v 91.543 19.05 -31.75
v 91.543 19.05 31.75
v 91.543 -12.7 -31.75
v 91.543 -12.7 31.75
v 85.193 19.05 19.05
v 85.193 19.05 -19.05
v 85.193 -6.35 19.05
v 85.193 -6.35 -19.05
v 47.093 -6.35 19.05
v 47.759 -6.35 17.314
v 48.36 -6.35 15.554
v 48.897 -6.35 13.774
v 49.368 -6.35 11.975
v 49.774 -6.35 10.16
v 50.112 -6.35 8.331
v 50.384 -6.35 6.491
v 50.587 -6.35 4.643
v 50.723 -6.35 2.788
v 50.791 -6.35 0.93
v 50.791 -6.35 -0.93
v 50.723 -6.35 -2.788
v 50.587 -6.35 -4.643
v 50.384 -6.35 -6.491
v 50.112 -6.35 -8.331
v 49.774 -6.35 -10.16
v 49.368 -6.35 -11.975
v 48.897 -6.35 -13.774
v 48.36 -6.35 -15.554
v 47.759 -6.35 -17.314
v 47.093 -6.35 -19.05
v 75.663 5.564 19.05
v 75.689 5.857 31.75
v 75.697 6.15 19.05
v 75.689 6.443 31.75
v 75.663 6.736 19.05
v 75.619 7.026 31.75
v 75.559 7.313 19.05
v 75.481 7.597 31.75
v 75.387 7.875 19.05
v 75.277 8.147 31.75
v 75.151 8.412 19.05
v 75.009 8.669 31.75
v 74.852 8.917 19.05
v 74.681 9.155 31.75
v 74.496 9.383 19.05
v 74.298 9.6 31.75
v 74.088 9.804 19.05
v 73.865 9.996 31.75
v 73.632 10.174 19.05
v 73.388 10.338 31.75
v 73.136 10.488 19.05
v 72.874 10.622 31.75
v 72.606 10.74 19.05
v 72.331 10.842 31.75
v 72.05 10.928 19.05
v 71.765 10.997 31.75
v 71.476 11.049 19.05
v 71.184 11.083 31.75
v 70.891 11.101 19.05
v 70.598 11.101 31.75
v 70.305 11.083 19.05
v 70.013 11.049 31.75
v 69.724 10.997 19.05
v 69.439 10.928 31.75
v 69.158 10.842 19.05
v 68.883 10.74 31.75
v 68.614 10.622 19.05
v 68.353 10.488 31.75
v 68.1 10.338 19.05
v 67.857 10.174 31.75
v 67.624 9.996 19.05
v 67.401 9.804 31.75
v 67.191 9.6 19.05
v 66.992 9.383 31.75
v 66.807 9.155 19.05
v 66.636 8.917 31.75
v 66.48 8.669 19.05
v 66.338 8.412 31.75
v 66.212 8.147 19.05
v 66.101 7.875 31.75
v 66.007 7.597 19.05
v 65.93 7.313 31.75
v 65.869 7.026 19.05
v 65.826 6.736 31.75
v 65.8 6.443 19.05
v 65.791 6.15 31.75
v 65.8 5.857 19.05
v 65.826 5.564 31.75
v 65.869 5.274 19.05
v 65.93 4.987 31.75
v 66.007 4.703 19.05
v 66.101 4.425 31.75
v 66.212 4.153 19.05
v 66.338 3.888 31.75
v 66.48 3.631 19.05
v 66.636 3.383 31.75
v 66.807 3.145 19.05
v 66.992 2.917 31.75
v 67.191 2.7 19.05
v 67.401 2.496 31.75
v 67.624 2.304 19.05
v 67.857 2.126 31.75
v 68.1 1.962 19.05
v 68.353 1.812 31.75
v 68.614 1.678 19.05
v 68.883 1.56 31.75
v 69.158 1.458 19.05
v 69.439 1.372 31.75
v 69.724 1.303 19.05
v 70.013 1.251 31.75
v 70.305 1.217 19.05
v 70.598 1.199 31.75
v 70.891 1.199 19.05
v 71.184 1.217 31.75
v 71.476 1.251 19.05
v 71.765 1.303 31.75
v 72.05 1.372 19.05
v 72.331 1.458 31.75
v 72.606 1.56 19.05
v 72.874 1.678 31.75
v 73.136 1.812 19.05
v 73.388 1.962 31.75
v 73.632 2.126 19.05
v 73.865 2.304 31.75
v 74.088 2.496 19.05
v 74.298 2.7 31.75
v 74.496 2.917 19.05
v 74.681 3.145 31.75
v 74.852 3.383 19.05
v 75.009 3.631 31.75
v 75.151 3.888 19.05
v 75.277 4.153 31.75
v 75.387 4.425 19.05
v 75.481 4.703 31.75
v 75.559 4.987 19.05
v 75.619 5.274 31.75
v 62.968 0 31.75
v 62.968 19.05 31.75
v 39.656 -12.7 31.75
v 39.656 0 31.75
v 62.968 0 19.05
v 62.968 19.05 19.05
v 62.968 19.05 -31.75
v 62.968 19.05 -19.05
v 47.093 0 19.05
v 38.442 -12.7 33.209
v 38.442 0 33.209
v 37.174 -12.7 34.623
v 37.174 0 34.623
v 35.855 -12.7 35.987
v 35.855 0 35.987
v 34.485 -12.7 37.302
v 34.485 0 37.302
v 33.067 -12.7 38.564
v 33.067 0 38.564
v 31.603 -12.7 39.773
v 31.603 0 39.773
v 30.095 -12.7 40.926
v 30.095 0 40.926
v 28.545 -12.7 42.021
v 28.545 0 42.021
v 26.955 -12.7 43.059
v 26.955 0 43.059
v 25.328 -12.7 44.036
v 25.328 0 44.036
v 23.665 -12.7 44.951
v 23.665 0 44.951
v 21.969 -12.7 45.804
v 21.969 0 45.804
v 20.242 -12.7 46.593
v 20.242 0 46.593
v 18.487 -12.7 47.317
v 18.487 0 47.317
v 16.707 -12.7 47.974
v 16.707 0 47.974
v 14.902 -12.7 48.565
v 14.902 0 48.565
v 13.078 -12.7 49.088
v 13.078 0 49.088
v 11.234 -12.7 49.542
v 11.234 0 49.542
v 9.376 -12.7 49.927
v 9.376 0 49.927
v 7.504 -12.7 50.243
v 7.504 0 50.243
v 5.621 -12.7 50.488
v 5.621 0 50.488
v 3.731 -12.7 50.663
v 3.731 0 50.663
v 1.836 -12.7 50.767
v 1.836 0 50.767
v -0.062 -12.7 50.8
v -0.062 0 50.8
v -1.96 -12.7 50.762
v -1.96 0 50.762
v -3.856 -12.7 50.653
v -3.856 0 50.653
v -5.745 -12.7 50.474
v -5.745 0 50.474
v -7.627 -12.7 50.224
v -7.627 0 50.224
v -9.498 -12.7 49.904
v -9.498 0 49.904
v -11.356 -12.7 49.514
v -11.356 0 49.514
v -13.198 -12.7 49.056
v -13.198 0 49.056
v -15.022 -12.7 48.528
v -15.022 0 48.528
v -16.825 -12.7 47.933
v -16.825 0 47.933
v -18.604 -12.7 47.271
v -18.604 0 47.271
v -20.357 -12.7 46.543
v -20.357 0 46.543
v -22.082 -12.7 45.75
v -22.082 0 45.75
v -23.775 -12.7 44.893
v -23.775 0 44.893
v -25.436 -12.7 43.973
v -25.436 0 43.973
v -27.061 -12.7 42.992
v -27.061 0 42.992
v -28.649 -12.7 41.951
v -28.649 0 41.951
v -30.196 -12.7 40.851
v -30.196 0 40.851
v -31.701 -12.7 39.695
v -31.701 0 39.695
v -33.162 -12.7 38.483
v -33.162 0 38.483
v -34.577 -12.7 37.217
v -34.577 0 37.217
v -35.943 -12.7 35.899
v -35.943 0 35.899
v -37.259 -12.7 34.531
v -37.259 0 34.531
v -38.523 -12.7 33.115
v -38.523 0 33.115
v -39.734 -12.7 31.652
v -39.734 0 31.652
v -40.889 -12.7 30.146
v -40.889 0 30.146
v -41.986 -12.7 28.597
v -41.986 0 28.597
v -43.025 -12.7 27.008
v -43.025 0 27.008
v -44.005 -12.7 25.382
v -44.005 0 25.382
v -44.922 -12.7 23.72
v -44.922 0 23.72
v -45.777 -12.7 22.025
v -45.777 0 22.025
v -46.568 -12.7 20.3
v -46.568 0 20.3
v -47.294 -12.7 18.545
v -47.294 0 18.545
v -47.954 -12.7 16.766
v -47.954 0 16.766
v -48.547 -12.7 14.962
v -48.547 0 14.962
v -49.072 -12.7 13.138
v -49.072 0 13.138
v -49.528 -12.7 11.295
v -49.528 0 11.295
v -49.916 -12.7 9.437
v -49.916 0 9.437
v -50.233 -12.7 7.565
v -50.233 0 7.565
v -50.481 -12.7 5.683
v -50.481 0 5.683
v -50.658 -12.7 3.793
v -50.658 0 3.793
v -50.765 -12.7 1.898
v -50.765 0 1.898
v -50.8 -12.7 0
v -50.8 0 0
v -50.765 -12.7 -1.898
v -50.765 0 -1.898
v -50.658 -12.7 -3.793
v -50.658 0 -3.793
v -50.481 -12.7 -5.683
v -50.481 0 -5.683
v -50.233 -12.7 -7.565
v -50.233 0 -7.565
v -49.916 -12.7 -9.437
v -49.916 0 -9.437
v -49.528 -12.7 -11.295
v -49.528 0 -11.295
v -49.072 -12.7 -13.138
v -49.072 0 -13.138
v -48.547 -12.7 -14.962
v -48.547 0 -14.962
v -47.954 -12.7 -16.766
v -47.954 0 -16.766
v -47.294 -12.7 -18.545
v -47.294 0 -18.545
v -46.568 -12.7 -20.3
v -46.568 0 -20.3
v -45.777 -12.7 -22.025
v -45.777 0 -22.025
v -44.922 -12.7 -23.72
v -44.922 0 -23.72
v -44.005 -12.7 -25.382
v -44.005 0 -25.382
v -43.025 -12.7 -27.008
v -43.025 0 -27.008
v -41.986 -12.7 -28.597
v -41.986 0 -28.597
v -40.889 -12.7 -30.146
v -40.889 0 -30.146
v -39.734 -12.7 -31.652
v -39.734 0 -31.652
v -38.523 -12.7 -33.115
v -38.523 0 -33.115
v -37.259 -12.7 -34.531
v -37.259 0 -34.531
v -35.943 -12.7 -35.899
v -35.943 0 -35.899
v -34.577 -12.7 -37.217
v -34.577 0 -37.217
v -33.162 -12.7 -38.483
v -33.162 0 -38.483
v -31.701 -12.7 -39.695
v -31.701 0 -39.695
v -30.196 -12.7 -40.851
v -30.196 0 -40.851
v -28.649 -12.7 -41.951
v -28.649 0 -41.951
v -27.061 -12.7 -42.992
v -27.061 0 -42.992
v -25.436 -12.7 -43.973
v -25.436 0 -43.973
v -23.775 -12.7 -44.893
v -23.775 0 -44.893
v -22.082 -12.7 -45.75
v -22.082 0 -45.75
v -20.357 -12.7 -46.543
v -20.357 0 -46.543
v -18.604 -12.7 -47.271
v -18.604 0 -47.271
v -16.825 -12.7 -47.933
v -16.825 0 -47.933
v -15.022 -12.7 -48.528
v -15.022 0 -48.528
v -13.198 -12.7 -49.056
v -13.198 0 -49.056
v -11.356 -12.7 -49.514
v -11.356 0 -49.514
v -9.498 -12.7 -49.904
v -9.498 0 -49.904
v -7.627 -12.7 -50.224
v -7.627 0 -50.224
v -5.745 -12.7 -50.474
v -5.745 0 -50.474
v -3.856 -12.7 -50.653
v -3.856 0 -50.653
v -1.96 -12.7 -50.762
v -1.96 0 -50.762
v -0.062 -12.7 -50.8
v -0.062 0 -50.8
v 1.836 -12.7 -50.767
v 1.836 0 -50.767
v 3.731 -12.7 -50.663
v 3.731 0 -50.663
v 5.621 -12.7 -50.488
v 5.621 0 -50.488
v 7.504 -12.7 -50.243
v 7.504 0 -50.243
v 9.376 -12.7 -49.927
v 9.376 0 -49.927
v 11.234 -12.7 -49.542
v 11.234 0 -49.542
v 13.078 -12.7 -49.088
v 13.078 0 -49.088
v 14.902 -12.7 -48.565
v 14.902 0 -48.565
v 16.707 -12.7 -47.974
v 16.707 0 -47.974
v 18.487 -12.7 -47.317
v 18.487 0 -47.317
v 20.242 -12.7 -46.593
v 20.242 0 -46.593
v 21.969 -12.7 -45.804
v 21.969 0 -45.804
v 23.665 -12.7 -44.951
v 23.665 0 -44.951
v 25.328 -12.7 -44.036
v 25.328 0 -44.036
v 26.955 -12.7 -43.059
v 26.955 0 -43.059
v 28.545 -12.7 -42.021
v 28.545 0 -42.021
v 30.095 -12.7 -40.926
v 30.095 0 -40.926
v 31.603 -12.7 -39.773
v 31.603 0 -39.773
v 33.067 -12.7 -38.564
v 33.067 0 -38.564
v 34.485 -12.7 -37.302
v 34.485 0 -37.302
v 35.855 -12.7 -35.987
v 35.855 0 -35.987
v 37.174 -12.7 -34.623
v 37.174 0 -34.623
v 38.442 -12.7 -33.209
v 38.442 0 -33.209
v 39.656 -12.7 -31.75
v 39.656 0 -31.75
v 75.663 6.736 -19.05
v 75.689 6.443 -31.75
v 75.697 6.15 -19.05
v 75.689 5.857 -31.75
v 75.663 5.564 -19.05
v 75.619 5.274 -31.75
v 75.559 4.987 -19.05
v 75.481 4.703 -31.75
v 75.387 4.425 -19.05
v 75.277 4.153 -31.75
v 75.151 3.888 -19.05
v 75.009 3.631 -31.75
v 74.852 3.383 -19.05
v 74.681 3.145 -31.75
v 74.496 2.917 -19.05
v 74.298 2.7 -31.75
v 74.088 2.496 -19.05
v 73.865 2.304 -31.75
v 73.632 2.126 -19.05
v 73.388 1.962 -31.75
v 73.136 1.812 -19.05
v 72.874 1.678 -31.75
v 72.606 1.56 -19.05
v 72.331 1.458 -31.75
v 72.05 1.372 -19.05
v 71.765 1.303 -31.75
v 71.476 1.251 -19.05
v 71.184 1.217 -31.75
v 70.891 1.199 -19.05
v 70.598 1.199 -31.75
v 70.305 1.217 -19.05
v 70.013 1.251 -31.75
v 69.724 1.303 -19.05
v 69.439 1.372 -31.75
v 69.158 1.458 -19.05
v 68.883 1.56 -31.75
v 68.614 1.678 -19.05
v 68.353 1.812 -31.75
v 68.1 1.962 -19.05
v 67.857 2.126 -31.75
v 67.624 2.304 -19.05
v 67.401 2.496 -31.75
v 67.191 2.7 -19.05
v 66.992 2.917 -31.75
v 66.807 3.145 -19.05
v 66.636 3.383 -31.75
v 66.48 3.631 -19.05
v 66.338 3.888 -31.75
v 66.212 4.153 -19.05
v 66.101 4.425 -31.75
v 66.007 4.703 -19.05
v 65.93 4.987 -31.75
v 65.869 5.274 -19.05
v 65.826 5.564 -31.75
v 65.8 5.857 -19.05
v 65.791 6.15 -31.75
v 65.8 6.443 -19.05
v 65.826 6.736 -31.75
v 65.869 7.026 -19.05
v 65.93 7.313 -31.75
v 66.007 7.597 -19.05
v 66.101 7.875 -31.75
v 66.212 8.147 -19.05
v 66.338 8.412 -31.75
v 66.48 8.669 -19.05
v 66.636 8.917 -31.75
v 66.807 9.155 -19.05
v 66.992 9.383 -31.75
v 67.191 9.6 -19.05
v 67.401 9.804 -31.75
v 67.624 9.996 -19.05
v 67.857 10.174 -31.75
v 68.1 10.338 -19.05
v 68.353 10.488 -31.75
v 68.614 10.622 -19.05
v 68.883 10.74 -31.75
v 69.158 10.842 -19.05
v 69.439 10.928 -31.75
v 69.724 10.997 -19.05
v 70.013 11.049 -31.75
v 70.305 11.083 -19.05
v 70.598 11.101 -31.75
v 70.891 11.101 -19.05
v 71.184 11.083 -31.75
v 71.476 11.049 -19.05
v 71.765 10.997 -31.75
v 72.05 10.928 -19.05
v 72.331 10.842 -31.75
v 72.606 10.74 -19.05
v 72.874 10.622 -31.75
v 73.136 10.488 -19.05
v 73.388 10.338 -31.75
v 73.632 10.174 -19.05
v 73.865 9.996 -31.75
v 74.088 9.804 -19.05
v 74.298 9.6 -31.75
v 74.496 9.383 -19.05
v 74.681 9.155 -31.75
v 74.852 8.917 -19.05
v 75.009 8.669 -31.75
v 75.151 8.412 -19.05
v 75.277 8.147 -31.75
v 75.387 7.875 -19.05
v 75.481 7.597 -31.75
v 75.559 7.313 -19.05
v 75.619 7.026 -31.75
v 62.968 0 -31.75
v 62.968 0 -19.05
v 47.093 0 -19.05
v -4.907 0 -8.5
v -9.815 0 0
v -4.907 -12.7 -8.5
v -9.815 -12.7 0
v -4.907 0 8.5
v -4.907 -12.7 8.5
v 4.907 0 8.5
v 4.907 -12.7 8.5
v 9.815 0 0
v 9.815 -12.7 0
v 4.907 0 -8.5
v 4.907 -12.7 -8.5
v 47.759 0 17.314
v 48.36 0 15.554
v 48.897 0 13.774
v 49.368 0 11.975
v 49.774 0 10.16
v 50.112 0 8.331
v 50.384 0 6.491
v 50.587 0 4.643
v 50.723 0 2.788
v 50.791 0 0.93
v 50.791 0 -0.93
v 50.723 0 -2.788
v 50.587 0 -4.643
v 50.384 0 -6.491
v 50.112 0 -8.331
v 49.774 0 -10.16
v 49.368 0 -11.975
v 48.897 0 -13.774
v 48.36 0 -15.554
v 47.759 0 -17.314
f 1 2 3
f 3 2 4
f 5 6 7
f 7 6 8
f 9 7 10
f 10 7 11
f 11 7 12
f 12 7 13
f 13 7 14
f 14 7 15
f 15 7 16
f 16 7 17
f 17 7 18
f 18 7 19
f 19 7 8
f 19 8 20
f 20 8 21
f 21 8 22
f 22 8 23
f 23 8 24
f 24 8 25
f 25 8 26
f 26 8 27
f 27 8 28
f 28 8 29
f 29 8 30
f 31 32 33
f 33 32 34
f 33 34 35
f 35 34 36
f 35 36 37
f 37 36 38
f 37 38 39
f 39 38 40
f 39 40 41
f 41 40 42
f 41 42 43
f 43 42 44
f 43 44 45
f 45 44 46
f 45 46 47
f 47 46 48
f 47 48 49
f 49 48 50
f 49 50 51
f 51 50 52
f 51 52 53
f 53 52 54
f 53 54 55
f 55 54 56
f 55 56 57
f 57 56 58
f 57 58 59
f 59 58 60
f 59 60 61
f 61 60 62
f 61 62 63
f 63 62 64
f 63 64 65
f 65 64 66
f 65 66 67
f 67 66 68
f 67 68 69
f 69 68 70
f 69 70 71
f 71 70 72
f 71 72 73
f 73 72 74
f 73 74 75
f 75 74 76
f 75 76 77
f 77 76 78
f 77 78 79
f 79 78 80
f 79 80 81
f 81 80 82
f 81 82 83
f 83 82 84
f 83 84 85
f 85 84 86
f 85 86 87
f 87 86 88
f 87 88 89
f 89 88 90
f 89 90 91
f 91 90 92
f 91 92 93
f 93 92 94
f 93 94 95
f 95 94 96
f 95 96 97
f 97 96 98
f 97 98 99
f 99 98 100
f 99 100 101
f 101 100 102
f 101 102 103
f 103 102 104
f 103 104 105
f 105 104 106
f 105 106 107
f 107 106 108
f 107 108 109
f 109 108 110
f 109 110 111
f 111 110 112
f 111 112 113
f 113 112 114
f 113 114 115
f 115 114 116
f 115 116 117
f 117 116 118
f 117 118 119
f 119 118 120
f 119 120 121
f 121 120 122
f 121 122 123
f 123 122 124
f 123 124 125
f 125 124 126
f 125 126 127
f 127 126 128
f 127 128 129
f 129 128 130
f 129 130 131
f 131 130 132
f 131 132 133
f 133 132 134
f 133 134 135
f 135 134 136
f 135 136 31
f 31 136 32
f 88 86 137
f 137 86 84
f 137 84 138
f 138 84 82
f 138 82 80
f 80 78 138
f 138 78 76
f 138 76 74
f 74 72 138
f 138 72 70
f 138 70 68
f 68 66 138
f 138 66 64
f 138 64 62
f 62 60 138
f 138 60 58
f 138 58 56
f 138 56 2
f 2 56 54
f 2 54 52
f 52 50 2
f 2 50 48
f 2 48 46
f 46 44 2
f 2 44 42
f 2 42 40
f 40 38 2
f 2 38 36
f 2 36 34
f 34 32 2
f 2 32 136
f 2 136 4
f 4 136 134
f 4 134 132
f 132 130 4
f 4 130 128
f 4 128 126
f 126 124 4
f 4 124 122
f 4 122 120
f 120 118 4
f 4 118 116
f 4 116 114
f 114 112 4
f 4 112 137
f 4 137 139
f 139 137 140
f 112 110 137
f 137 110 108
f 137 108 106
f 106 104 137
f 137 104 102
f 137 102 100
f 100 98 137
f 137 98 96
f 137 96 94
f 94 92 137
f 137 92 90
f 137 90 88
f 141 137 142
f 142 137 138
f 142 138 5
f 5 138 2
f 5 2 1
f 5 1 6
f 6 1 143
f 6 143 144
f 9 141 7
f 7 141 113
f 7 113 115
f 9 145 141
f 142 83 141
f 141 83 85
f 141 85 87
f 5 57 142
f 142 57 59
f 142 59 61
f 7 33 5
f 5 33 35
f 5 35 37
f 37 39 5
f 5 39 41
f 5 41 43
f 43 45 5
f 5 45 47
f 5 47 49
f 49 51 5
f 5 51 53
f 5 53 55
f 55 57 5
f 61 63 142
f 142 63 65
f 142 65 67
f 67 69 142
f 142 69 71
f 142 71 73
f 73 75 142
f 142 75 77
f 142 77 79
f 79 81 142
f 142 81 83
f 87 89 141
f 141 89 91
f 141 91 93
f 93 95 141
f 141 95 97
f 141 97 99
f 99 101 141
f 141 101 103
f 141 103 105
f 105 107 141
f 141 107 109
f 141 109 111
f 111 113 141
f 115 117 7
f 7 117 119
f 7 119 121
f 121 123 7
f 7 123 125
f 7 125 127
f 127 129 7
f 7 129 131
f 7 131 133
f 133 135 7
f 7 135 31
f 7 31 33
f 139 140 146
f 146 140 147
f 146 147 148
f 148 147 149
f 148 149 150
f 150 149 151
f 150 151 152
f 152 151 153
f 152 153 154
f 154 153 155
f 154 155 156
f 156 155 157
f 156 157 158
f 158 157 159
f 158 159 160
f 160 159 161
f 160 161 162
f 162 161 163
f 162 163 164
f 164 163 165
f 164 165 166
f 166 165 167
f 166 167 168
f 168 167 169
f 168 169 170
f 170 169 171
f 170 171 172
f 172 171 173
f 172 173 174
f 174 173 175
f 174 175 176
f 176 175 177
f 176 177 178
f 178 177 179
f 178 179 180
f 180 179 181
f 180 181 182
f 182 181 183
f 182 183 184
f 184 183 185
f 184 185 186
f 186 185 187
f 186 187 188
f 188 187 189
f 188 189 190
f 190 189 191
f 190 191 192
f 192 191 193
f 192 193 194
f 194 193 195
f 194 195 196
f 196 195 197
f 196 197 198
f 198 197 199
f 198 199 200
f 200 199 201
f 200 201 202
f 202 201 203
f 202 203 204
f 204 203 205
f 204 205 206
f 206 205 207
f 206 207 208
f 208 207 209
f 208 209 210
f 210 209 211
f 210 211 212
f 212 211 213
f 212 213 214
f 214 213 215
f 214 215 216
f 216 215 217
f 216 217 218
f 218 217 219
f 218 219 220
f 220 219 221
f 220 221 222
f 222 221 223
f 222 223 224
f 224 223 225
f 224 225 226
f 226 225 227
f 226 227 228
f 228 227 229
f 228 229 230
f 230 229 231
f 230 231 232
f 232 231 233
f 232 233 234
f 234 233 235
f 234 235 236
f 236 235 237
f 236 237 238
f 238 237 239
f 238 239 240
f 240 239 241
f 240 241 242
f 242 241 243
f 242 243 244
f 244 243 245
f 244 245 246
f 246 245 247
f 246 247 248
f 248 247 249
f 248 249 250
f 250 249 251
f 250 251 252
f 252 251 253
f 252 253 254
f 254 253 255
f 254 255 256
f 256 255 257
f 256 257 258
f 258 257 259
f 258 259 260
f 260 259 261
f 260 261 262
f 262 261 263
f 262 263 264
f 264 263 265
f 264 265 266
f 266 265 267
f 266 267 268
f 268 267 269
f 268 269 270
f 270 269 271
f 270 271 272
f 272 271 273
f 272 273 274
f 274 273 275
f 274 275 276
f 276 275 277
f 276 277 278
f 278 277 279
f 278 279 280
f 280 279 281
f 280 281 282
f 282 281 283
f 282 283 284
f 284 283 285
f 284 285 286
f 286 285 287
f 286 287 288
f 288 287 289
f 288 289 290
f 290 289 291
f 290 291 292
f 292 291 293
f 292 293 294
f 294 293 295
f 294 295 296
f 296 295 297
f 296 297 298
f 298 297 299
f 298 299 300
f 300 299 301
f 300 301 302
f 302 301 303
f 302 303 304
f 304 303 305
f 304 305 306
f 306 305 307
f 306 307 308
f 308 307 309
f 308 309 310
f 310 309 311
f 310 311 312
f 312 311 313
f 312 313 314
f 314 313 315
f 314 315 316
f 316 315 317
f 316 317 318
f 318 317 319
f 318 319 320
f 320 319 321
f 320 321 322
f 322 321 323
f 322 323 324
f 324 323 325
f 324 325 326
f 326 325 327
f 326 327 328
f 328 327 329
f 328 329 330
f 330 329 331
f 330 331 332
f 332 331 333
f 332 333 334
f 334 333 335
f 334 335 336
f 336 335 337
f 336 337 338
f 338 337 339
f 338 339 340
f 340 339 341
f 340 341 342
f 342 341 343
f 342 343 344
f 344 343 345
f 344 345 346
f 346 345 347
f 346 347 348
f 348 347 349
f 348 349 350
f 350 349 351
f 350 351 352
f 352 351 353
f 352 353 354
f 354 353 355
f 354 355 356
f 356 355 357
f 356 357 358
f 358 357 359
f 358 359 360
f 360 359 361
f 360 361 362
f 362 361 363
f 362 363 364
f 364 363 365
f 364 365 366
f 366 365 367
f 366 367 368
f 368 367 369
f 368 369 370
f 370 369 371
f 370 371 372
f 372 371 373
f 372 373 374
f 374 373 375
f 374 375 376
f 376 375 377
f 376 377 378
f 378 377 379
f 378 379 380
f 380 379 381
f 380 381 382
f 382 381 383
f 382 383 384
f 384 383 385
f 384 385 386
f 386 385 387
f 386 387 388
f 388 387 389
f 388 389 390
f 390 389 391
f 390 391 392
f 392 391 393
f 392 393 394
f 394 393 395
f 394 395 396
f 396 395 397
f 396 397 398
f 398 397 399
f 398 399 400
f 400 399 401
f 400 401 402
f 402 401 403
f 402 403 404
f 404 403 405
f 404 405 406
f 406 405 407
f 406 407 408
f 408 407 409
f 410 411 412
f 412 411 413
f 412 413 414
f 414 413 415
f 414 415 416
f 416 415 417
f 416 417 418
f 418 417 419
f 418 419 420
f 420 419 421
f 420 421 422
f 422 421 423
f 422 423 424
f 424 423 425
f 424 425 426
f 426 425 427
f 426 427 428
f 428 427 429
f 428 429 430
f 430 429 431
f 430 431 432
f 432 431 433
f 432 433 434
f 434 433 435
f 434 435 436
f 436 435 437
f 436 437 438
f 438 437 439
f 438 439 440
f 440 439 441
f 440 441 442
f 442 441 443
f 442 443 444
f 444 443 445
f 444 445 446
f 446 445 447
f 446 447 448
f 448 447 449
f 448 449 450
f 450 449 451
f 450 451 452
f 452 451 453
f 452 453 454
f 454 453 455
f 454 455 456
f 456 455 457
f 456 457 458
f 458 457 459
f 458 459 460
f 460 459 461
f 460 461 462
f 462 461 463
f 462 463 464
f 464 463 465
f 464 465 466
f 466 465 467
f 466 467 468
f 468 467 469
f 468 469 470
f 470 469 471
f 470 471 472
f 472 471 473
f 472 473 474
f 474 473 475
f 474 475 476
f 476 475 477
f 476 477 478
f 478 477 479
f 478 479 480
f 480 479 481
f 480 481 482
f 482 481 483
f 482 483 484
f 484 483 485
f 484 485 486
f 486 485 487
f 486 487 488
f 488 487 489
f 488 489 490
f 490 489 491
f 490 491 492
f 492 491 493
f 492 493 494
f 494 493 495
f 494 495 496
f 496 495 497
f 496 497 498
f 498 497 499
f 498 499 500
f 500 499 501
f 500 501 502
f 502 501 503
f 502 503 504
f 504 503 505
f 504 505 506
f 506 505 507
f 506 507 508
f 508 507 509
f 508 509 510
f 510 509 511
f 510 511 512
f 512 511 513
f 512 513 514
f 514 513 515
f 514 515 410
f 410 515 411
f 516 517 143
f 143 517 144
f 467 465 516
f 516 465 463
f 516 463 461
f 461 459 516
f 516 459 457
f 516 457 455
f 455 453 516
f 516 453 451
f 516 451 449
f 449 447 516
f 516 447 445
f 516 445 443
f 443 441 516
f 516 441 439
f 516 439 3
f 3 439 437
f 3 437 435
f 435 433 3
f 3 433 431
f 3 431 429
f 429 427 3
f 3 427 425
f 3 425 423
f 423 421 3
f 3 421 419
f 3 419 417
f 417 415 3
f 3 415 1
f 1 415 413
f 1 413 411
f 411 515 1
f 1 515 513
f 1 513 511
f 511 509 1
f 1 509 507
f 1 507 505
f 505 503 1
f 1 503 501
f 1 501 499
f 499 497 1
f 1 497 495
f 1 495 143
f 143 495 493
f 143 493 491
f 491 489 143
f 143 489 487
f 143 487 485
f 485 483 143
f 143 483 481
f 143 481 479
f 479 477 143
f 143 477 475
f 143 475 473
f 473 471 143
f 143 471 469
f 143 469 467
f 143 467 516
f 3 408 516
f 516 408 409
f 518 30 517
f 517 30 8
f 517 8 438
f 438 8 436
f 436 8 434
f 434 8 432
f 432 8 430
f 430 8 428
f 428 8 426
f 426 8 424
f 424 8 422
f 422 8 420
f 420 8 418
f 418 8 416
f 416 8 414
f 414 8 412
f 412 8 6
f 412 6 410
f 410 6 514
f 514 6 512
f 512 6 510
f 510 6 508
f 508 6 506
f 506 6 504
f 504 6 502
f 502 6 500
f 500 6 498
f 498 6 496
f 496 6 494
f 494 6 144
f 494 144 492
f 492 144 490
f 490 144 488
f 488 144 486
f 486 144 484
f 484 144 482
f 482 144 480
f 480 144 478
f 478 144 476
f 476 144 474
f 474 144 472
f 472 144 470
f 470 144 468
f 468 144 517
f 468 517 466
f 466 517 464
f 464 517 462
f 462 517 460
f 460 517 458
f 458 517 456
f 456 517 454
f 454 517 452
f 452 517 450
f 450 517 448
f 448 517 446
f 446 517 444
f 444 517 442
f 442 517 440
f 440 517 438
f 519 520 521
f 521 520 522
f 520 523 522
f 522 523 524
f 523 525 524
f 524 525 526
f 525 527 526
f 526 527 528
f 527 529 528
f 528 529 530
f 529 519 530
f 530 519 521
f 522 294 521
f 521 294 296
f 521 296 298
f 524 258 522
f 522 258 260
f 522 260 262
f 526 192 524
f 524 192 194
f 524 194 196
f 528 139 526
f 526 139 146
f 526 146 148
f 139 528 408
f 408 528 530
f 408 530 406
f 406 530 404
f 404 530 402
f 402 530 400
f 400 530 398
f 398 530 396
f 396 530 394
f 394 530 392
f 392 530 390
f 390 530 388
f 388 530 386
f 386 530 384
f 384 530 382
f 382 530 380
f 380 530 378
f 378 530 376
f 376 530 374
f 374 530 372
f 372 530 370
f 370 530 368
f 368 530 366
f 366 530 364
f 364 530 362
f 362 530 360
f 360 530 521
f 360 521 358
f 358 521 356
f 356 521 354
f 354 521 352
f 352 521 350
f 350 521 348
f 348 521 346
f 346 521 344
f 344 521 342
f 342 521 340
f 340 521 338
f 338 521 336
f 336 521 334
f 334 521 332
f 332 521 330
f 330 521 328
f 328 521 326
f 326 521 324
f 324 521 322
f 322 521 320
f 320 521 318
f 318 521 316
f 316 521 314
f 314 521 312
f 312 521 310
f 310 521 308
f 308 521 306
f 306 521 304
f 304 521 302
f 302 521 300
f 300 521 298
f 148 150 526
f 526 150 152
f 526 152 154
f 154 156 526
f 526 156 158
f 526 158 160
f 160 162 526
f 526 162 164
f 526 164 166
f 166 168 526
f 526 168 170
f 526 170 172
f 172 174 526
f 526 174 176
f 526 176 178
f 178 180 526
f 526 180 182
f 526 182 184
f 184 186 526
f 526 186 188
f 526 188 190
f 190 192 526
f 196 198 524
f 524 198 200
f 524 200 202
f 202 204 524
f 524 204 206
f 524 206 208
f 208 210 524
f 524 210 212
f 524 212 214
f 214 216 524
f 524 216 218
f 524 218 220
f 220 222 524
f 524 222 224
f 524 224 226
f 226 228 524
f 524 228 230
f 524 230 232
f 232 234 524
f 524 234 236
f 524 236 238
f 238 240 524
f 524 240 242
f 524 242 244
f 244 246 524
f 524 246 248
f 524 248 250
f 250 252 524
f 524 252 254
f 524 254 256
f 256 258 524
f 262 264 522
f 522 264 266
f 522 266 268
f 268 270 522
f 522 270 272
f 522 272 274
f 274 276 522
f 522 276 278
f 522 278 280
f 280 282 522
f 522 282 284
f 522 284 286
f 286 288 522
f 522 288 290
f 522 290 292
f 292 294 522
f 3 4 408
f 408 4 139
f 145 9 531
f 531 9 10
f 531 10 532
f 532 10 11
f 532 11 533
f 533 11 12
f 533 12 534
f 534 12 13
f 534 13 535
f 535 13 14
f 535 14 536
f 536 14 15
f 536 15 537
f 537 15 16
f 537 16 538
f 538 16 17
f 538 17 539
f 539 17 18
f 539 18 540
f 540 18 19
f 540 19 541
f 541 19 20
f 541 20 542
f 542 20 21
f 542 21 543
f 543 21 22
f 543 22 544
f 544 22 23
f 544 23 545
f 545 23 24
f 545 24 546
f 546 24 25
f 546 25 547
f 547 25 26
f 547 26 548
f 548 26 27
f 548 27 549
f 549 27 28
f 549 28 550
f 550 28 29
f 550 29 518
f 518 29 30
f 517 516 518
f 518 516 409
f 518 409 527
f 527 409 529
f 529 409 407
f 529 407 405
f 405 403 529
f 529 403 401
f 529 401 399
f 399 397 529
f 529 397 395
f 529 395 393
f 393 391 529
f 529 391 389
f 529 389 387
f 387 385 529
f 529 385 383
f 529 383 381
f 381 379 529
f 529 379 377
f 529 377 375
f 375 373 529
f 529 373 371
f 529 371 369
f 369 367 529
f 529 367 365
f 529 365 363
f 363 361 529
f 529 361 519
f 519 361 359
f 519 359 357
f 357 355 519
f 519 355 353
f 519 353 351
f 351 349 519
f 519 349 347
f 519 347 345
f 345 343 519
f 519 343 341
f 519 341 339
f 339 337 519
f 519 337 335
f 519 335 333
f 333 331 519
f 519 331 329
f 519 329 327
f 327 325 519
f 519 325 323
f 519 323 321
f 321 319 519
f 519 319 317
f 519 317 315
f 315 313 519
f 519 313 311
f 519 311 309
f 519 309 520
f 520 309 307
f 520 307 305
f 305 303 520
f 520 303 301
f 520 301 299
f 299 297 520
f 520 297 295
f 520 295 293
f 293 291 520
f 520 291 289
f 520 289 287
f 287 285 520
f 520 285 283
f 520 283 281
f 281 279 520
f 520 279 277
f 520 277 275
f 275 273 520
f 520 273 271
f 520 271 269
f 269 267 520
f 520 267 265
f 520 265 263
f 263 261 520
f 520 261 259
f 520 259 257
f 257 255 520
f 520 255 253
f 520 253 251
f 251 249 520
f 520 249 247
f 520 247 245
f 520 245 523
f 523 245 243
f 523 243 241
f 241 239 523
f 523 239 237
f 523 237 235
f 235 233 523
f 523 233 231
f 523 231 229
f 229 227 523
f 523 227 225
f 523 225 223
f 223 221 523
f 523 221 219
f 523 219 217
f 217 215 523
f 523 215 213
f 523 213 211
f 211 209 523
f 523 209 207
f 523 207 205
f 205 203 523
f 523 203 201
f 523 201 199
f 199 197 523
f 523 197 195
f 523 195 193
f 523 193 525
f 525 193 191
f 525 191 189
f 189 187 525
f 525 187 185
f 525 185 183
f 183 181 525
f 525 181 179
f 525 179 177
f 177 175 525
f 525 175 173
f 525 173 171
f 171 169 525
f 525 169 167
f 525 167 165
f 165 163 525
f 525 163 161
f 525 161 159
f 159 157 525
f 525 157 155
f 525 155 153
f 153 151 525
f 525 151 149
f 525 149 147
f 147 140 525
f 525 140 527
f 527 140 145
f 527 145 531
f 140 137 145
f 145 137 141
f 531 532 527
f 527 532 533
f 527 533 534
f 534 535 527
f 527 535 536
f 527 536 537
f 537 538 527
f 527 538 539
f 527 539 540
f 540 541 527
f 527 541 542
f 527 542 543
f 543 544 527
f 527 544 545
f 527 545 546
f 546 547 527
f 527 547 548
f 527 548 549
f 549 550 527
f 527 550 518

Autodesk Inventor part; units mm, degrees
ref_plane "YZ Plane" through (0, 0, 0) normal (1, 0, 0) x (0, 1, 0)
ref_plane "XZ Plane" through (0, 0, 0) normal (0, 1, 0) x (-1, 0, 0)
ref_plane "XY Plane" through (0, 0, 0) normal (0, 0, 1) x (1, 0, 0)
sketch "Sketch1" plane through (0, 0, 0) normal (0, 0, 1) x (1, 0, 0)
  line L0 (0, 0) -> (-50.8, 0)
  line L1 (-50.8, 0) -> (-50.8, -12.7)
  line L2 (-50.8, -12.7) -> (-38.1, -12.7)
  line L3 (-12.0663, -25.4) -> (-12.0663, -48.26)
  line L4 (-5, -48.26) -> (-5, -16.764)
  line L5 (-5, -16.764) -> (0, -16.764)
  line L6 (0, -16.764) -> (0, 0)
  line L7 (-12.0663, -48.26) -> (-5, -48.26)
  line L8 (-38.1, -12.7) -> (-38.1, -25.4)
  line L9 (-38.1, -25.4) -> (-12.0663, -25.4)
  dimension "d0" = 50.8
  dimension "d1" = 5
  dimension "d2" = 12.0663
  dimension "d13" = 35.56
  dimension "d15" = 31.496
  dimension "d38" = 12.7
  dimension "d39" = 38.1
revolve "Revolution1" add sketch "Sketch1" angle 360 about axis through (0, -16.764, 0) along (0, 1, 0)
sketch "Sketch5" plane through (0, 0, 0) normal (0, 1, 0) x (1, 0, 0)
  circle A0 centre (0, 0) radius 5 projected
  line L0 (9.815, 0) -> (4.9075, -8.5)
  line L1 (4.9075, -8.5) -> (-4.9075, -8.5)
  line L2 (-4.9075, -8.5) -> (-9.815, 0)
  line L3 (-9.815, 0) -> (-4.9075, 8.5)
  line L4 (-4.9075, 8.5) -> (4.9075, 8.5)
  line L5 (4.9075, 8.5) -> (9.815, 0)
  point P0 (0, 0)
  point P1 (0, 0)
  dimension "d16" = 17
extrude "Extrusion1" cut sketch "Sketch5" against normal blind 12.7 contours A0 | L0 L1 L2 L3 L4 L5
sketch "Sketch7" plane through (0, -12.7, 0) normal (0, -1, 0) x (1, 0, 0)
  circle A0 centre (0, 0) radius 50.8 projected
  line L0 (47.0929, -19.05) -> (85.1929, -19.05)
  line L1 (85.1929, -19.05) -> (85.1929, -31.75)
  line L2 (85.1929, -31.75) -> (39.6557, -31.75)
  circle A1 centre (0, 0) radius 5 construction
  line L3 (0, 0) -> (5, 0) construction
  line L4 (50.8, 0) -> (83.823, 0) construction
  dimension "d23" = 38.1
  dimension "d24" = 12.7
  dimension "d25" = 19.05
extrude "Extrusion3" add sketch "Sketch7" against normal blind 12.7 contours A0 L0 L1 L2
sketch "Sketch8" plane through (39.6557, 0, -31.75) normal (0, 1, 0) x (1, 0, 0)
  line L0 (45.5371, -12.7) -> (45.5371, 0) projected
  line L1 (45.5371, 0) -> (0, 0) projected
  line L2 (7.4371, -12.7) -> (45.5371, -12.7) projected
  line L3 (35.8511, -107.95) -> (35.8511, 44.45)
  line L4 (26.3261, -107.95) -> (26.3261, 44.45)
  line L5 (45.5371, -12.7) -> (23.3121, -12.7)
  line L6 (23.3121, -12.7) -> (23.3121, 0)
  line L7 (23.3121, 0) -> (45.5371, 0)
  line L8 (45.5371, 0) -> (45.5371, -12.7)
  point P0 (-39.6557, -31.75)
  point P1 (23.3121, 0)
  point P2 (23.3121, -12.7)
  dimension "d28" = 22.225
extrude "Extrusion4" add sketch "Sketch8" along normal blind 19.05
sketch "Sketch9" plane through (85.1929, -12.7, -31.75) normal (0, 0, -1) x (-1, 0, 0)
  line L0 (22.225, 12.7) -> (22.225, 31.75) projected
  line L1 (0, 31.75) -> (22.225, 31.75) projected
  arc A0 (16.0423, 14.3621) -> (12.8546, 14.3621) centre (14.4485, 18.85) ccw projected
  line L2 (0, 0) -> (0, 31.75) projected
  circle A1 centre (14.4485, 18.85) radius 4.953
  point P0 (85.1929, 12.7)
  dimension "d31" = 9.906
extrude "Extrusion5" cut sketch "Sketch9" against normal through all
mirror "Mirror1" about plane through (0, 0, 0) normal (0, 0, 1) of "Extrusion4", "Extrusion5", "Extrusion3"
sketch "Sketch10" plane through (39.6557, -12.7, -31.75) normal (0, -1, 0) x (1, 0, 0)
  arc A0 (7.4371, 12.7) -> (7.4371, 50.8) centre (-39.6557, 31.75) ccw projected
  line L0 (45.5371, 50.8) -> (7.4371, 50.8) projected
  line L1 (45.5371, 12.7) -> (7.4371, 12.7) projected
  arc A1 (7.4371, 12.7) -> (7.4371, 50.8) centre (-39.6557, 31.75) ccw
  line L2 (7.4371, 50.8) -> (45.5371, 50.8)
  line L3 (45.5371, 0) -> (45.5371, 12.7) projected
  line L4 (45.5371, 50.8) -> (45.5371, 12.7)
  line L5 (45.5371, 12.7) -> (7.4371, 12.7)
extrude "Extrusion6" add sketch "Sketch10" against normal blind 6.35
sketch "Sketch11" plane through (85.1929, -12.7, -31.75) normal (1, 0, 0) x (0, 0, -1)
  line L0 (-63.5, 0) -> (-63.5, 31.75) projected
  line L1 (-50.8, 31.75) -> (-63.5, 31.75) projected
  line L2 (-12.7, 31.75) -> (0, 31.75) projected
  line L3 (0, 0) -> (0, 31.75) projected
  line L4 (0, 0) -> (-63.5, 0) projected
  line L5 (-63.5, 31.75) -> (0, 31.75)
  line L6 (0, 31.75) -> (0, 0)
  line L7 (0, 0) -> (-63.5, 0)
  line L8 (-63.5, 0) -> (-63.5, 31.75)
  point P0 (-31.75, 12.7)
  point P1 (-12.7, 31.75)
  point P2 (-50.8, 31.75)
extrude "Extrusion7" add sketch "Sketch11" along normal blind 6.35
sketch "Sketch13" plane through (0, -12.7, 0) normal (0, -1, 0) x (1, 0, 0)
  circle A0 centre (0, 0) radius 38.1
extrude "Extrusion8" cut sketch "Sketch13" along normal through all
equation "\"d0\" = topPartRadius"
equation "\"d2\" = stemRadius"
equation "\"d15\" = internalHoleDepth"
equation "\"topPartRadius\" = 0.5 * topPartDiameter"
equation "\"totalHeight\" = 35.56"
equation "\"stemRadius\" = 12.06627"
equation "\"stemHeight\" = 22.86"
equation "\"internalHoleDepth\" = 31.496"
equation "\"topPartDiameter\" = 101.6"
properties part number "celestronTripodAdapterTop" material "PC/ABS Plastic"
